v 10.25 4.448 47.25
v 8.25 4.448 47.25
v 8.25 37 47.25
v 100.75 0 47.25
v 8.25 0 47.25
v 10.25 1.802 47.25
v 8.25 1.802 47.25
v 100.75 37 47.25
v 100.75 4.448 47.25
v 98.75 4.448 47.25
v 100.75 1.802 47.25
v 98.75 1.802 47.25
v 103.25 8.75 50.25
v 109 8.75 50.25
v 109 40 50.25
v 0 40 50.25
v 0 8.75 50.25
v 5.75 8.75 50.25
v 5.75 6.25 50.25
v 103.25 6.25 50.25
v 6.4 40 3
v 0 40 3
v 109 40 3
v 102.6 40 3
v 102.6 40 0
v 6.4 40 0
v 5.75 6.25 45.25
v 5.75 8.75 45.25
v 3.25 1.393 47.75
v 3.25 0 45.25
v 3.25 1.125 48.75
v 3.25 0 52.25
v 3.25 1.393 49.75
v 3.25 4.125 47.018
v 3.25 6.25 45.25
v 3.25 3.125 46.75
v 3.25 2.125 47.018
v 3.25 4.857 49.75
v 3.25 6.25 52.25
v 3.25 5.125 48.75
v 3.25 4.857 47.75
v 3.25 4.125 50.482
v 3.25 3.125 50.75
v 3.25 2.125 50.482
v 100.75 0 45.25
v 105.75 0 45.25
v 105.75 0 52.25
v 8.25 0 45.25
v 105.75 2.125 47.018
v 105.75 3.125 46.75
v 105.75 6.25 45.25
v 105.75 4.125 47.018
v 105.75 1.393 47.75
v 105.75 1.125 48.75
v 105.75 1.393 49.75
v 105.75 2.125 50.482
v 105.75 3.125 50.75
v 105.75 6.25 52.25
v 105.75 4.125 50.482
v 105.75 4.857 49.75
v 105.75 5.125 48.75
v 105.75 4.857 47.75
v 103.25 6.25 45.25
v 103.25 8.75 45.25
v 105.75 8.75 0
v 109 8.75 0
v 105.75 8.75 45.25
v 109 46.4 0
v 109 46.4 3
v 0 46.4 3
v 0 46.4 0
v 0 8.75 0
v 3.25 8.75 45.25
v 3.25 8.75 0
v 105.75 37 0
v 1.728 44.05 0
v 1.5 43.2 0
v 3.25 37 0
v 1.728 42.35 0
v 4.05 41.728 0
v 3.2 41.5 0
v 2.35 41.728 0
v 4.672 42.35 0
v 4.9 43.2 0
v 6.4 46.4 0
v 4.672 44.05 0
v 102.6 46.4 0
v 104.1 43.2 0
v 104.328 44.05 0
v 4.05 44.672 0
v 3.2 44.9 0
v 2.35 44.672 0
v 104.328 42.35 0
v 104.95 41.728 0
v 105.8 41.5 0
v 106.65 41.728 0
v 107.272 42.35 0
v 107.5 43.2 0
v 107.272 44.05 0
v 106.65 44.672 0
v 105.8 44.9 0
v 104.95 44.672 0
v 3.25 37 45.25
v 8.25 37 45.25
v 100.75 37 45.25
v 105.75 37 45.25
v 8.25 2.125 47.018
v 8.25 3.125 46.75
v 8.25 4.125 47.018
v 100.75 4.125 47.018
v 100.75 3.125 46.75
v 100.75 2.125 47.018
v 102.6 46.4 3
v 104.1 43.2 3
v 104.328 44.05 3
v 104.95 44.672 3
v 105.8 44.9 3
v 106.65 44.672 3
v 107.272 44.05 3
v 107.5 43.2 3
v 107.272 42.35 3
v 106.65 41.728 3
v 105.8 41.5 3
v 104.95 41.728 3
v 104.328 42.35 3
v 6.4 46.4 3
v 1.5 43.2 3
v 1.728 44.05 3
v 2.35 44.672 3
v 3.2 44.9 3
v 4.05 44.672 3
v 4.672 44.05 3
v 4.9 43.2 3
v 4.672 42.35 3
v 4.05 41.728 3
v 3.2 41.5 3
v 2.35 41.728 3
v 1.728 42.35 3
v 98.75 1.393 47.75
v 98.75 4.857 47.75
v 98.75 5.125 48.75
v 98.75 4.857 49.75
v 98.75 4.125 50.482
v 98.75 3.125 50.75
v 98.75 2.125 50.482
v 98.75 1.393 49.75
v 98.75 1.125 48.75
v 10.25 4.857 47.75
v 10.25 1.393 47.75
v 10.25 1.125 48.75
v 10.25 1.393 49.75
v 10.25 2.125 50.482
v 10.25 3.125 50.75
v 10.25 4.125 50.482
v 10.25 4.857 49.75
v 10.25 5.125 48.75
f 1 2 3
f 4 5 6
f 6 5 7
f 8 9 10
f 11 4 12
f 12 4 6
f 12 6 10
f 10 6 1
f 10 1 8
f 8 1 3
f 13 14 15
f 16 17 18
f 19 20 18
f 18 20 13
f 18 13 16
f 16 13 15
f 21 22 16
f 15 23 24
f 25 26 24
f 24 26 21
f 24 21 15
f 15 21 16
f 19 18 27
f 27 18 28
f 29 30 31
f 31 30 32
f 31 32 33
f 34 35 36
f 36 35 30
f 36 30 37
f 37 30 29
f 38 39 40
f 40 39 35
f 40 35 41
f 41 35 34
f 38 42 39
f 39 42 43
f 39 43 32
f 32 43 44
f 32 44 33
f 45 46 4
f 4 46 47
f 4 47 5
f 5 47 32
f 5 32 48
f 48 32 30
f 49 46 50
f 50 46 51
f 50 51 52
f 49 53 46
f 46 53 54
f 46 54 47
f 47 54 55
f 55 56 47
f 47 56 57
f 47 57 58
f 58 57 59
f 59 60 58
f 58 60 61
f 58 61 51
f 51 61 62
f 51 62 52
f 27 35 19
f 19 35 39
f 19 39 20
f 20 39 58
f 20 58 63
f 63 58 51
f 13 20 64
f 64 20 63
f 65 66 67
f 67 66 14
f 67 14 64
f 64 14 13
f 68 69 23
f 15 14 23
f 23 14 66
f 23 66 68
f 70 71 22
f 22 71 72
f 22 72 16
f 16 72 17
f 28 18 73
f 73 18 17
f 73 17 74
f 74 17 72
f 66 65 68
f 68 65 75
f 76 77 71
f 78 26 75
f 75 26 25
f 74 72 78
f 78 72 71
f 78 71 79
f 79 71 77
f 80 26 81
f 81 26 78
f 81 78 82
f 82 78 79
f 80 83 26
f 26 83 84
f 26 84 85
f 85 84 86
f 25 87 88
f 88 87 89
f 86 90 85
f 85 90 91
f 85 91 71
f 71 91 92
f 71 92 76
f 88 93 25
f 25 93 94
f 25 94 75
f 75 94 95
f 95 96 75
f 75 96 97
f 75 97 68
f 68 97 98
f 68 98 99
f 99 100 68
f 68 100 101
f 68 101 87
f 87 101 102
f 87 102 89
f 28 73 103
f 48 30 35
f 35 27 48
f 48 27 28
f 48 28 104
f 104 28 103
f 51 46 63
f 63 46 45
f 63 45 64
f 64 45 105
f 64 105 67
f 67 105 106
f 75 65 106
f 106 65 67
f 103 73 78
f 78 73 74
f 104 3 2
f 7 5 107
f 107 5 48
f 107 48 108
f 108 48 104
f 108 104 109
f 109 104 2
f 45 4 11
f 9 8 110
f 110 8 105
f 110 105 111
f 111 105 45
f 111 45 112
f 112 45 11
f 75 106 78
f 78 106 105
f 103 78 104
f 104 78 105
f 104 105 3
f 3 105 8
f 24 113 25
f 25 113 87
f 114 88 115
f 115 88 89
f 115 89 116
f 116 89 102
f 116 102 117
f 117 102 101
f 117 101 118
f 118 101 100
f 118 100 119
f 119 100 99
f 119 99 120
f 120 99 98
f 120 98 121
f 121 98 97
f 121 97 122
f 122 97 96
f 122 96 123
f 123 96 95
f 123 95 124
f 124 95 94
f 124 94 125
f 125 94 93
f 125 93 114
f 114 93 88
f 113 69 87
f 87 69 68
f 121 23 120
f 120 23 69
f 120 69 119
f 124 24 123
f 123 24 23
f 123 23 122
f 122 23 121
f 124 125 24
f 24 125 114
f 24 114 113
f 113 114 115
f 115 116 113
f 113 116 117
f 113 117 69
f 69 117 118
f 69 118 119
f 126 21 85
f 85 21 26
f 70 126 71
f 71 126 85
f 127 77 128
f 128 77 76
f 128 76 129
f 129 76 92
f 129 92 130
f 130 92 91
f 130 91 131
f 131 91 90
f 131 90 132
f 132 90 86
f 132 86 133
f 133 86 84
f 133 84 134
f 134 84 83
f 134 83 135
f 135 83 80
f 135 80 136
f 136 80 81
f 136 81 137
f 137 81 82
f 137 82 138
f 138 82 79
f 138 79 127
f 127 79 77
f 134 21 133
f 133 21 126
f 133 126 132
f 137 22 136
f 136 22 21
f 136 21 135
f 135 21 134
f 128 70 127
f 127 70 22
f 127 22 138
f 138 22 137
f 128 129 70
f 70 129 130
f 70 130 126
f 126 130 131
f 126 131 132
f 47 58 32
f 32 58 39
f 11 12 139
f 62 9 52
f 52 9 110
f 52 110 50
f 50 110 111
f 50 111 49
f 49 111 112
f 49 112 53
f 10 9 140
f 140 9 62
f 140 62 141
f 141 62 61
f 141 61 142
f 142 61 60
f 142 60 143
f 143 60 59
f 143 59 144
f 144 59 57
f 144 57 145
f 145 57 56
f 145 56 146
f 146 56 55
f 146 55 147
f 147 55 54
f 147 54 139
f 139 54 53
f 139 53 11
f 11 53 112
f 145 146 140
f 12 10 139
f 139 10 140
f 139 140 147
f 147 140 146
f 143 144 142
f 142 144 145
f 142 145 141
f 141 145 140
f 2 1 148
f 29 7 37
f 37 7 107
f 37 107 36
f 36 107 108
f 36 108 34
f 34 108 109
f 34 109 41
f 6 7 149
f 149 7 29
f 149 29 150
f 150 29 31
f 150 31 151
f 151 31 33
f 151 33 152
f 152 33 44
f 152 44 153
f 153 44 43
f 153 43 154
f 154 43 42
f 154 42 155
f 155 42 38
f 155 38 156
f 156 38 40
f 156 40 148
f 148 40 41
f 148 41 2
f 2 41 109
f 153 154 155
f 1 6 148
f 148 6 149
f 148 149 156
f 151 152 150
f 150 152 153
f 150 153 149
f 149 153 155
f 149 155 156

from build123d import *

# Parameters (mm, degrees)
BOSS_EXTRUDE2_DEPTH = 50.25
CUT_EXTRUDE3_DEPTH  = 37
SKETCH6_W           = 6.4
SKETCH6_H           = 6.4
SKETCH6_R           = 1.7
BOSS_EXTRUDE3_DEPTH = 3
SKETCH8_W           = 102.5
SKETCH8_H           = 6.25
BOSS_EXTRUDE4_DEPTH = 2
SKETCH7_R           = 2
CUT_EXTRUDE4_DEPTH  = 7


with BuildPart() as part:
    # Sketch4 → Boss-Extrude2 (new body)
    with BuildSketch(Plane.XY):
        Polygon((3.25, 0), (105.75, 0), (105.75, 6.25), (103.25, 6.25), (103.25, 8.75), (109, 8.75), (109, 40), (0, 40), (0, 8.75), (5.75, 8.75), (5.75, 6.25), (3.25, 6.25), align=None)
    extrude(amount=BOSS_EXTRUDE2_DEPTH)

    # Sketch5 → Cut-Extrude3 (cut)
    with BuildSketch(Plane.XZ):
        Polygon((3.25, 0), (8.418575633, 0), (100.815935432, 0), (105.75, 0), (105.75, 45.25), (100.75, 45.25), (100.75, 47.25), (8.25, 47.25), (8.25, 45.25), (3.25, 45.25), align=None)
    extrude(amount=-CUT_EXTRUDE3_DEPTH, mode=Mode.SUBTRACT)

    # Sketch6 → Boss-Extrude3 (add)
    # profile 1 of 2: a face of its own
    with BuildSketch(Plane(origin=(0, 0, 0), x_dir=(-1, 0, 0), z_dir=(0, 0, -1))):
        with Locations((-105.8, 43.2)):
            Rectangle(SKETCH6_W, SKETCH6_H)
        with Locations((-105.8, 43.2)):
            Circle(SKETCH6_R, mode=Mode.SUBTRACT)
    # profile 2 of 2: a face of its own
    with BuildSketch(Plane(origin=(0, 0, 0), x_dir=(-1, 0, 0), z_dir=(0, 0, -1))):
        with Locations((-3.2, 43.2)):
            Rectangle(SKETCH6_W, SKETCH6_H)
        with Locations((-3.2, 43.2)):
            Circle(SKETCH6_R, mode=Mode.SUBTRACT)
    extrude(amount=-BOSS_EXTRUDE3_DEPTH)

    # Sketch8 → Boss-Extrude4 (add)
    with BuildSketch(Plane.XY.offset(50.25)):
        with Locations((54.5, 3.125)):
            Rectangle(SKETCH8_W, SKETCH8_H)
    extrude(amount=BOSS_EXTRUDE4_DEPTH)

    # Sketch7 → Cut-Extrude4 (cut)
    with BuildSketch(Plane(origin=(105.75, 0, 0), x_dir=(0, 0, -1), z_dir=(1, 0, 0))):
        with Locations((-48.75, 3.125)):
            Circle(SKETCH7_R)
    cut_extrude4 = extrude(amount=-CUT_EXTRUDE4_DEPTH, mode=Mode.SUBTRACT)

    # Mirror1: Cut-Extrude4 across plane
    add(cut_extrude4.mirror(Plane(origin=(54.5, 0, 0), x_dir=(0, 0, 1), z_dir=(1, 0, 0))), mode=Mode.SUBTRACT)


solid = part.part
